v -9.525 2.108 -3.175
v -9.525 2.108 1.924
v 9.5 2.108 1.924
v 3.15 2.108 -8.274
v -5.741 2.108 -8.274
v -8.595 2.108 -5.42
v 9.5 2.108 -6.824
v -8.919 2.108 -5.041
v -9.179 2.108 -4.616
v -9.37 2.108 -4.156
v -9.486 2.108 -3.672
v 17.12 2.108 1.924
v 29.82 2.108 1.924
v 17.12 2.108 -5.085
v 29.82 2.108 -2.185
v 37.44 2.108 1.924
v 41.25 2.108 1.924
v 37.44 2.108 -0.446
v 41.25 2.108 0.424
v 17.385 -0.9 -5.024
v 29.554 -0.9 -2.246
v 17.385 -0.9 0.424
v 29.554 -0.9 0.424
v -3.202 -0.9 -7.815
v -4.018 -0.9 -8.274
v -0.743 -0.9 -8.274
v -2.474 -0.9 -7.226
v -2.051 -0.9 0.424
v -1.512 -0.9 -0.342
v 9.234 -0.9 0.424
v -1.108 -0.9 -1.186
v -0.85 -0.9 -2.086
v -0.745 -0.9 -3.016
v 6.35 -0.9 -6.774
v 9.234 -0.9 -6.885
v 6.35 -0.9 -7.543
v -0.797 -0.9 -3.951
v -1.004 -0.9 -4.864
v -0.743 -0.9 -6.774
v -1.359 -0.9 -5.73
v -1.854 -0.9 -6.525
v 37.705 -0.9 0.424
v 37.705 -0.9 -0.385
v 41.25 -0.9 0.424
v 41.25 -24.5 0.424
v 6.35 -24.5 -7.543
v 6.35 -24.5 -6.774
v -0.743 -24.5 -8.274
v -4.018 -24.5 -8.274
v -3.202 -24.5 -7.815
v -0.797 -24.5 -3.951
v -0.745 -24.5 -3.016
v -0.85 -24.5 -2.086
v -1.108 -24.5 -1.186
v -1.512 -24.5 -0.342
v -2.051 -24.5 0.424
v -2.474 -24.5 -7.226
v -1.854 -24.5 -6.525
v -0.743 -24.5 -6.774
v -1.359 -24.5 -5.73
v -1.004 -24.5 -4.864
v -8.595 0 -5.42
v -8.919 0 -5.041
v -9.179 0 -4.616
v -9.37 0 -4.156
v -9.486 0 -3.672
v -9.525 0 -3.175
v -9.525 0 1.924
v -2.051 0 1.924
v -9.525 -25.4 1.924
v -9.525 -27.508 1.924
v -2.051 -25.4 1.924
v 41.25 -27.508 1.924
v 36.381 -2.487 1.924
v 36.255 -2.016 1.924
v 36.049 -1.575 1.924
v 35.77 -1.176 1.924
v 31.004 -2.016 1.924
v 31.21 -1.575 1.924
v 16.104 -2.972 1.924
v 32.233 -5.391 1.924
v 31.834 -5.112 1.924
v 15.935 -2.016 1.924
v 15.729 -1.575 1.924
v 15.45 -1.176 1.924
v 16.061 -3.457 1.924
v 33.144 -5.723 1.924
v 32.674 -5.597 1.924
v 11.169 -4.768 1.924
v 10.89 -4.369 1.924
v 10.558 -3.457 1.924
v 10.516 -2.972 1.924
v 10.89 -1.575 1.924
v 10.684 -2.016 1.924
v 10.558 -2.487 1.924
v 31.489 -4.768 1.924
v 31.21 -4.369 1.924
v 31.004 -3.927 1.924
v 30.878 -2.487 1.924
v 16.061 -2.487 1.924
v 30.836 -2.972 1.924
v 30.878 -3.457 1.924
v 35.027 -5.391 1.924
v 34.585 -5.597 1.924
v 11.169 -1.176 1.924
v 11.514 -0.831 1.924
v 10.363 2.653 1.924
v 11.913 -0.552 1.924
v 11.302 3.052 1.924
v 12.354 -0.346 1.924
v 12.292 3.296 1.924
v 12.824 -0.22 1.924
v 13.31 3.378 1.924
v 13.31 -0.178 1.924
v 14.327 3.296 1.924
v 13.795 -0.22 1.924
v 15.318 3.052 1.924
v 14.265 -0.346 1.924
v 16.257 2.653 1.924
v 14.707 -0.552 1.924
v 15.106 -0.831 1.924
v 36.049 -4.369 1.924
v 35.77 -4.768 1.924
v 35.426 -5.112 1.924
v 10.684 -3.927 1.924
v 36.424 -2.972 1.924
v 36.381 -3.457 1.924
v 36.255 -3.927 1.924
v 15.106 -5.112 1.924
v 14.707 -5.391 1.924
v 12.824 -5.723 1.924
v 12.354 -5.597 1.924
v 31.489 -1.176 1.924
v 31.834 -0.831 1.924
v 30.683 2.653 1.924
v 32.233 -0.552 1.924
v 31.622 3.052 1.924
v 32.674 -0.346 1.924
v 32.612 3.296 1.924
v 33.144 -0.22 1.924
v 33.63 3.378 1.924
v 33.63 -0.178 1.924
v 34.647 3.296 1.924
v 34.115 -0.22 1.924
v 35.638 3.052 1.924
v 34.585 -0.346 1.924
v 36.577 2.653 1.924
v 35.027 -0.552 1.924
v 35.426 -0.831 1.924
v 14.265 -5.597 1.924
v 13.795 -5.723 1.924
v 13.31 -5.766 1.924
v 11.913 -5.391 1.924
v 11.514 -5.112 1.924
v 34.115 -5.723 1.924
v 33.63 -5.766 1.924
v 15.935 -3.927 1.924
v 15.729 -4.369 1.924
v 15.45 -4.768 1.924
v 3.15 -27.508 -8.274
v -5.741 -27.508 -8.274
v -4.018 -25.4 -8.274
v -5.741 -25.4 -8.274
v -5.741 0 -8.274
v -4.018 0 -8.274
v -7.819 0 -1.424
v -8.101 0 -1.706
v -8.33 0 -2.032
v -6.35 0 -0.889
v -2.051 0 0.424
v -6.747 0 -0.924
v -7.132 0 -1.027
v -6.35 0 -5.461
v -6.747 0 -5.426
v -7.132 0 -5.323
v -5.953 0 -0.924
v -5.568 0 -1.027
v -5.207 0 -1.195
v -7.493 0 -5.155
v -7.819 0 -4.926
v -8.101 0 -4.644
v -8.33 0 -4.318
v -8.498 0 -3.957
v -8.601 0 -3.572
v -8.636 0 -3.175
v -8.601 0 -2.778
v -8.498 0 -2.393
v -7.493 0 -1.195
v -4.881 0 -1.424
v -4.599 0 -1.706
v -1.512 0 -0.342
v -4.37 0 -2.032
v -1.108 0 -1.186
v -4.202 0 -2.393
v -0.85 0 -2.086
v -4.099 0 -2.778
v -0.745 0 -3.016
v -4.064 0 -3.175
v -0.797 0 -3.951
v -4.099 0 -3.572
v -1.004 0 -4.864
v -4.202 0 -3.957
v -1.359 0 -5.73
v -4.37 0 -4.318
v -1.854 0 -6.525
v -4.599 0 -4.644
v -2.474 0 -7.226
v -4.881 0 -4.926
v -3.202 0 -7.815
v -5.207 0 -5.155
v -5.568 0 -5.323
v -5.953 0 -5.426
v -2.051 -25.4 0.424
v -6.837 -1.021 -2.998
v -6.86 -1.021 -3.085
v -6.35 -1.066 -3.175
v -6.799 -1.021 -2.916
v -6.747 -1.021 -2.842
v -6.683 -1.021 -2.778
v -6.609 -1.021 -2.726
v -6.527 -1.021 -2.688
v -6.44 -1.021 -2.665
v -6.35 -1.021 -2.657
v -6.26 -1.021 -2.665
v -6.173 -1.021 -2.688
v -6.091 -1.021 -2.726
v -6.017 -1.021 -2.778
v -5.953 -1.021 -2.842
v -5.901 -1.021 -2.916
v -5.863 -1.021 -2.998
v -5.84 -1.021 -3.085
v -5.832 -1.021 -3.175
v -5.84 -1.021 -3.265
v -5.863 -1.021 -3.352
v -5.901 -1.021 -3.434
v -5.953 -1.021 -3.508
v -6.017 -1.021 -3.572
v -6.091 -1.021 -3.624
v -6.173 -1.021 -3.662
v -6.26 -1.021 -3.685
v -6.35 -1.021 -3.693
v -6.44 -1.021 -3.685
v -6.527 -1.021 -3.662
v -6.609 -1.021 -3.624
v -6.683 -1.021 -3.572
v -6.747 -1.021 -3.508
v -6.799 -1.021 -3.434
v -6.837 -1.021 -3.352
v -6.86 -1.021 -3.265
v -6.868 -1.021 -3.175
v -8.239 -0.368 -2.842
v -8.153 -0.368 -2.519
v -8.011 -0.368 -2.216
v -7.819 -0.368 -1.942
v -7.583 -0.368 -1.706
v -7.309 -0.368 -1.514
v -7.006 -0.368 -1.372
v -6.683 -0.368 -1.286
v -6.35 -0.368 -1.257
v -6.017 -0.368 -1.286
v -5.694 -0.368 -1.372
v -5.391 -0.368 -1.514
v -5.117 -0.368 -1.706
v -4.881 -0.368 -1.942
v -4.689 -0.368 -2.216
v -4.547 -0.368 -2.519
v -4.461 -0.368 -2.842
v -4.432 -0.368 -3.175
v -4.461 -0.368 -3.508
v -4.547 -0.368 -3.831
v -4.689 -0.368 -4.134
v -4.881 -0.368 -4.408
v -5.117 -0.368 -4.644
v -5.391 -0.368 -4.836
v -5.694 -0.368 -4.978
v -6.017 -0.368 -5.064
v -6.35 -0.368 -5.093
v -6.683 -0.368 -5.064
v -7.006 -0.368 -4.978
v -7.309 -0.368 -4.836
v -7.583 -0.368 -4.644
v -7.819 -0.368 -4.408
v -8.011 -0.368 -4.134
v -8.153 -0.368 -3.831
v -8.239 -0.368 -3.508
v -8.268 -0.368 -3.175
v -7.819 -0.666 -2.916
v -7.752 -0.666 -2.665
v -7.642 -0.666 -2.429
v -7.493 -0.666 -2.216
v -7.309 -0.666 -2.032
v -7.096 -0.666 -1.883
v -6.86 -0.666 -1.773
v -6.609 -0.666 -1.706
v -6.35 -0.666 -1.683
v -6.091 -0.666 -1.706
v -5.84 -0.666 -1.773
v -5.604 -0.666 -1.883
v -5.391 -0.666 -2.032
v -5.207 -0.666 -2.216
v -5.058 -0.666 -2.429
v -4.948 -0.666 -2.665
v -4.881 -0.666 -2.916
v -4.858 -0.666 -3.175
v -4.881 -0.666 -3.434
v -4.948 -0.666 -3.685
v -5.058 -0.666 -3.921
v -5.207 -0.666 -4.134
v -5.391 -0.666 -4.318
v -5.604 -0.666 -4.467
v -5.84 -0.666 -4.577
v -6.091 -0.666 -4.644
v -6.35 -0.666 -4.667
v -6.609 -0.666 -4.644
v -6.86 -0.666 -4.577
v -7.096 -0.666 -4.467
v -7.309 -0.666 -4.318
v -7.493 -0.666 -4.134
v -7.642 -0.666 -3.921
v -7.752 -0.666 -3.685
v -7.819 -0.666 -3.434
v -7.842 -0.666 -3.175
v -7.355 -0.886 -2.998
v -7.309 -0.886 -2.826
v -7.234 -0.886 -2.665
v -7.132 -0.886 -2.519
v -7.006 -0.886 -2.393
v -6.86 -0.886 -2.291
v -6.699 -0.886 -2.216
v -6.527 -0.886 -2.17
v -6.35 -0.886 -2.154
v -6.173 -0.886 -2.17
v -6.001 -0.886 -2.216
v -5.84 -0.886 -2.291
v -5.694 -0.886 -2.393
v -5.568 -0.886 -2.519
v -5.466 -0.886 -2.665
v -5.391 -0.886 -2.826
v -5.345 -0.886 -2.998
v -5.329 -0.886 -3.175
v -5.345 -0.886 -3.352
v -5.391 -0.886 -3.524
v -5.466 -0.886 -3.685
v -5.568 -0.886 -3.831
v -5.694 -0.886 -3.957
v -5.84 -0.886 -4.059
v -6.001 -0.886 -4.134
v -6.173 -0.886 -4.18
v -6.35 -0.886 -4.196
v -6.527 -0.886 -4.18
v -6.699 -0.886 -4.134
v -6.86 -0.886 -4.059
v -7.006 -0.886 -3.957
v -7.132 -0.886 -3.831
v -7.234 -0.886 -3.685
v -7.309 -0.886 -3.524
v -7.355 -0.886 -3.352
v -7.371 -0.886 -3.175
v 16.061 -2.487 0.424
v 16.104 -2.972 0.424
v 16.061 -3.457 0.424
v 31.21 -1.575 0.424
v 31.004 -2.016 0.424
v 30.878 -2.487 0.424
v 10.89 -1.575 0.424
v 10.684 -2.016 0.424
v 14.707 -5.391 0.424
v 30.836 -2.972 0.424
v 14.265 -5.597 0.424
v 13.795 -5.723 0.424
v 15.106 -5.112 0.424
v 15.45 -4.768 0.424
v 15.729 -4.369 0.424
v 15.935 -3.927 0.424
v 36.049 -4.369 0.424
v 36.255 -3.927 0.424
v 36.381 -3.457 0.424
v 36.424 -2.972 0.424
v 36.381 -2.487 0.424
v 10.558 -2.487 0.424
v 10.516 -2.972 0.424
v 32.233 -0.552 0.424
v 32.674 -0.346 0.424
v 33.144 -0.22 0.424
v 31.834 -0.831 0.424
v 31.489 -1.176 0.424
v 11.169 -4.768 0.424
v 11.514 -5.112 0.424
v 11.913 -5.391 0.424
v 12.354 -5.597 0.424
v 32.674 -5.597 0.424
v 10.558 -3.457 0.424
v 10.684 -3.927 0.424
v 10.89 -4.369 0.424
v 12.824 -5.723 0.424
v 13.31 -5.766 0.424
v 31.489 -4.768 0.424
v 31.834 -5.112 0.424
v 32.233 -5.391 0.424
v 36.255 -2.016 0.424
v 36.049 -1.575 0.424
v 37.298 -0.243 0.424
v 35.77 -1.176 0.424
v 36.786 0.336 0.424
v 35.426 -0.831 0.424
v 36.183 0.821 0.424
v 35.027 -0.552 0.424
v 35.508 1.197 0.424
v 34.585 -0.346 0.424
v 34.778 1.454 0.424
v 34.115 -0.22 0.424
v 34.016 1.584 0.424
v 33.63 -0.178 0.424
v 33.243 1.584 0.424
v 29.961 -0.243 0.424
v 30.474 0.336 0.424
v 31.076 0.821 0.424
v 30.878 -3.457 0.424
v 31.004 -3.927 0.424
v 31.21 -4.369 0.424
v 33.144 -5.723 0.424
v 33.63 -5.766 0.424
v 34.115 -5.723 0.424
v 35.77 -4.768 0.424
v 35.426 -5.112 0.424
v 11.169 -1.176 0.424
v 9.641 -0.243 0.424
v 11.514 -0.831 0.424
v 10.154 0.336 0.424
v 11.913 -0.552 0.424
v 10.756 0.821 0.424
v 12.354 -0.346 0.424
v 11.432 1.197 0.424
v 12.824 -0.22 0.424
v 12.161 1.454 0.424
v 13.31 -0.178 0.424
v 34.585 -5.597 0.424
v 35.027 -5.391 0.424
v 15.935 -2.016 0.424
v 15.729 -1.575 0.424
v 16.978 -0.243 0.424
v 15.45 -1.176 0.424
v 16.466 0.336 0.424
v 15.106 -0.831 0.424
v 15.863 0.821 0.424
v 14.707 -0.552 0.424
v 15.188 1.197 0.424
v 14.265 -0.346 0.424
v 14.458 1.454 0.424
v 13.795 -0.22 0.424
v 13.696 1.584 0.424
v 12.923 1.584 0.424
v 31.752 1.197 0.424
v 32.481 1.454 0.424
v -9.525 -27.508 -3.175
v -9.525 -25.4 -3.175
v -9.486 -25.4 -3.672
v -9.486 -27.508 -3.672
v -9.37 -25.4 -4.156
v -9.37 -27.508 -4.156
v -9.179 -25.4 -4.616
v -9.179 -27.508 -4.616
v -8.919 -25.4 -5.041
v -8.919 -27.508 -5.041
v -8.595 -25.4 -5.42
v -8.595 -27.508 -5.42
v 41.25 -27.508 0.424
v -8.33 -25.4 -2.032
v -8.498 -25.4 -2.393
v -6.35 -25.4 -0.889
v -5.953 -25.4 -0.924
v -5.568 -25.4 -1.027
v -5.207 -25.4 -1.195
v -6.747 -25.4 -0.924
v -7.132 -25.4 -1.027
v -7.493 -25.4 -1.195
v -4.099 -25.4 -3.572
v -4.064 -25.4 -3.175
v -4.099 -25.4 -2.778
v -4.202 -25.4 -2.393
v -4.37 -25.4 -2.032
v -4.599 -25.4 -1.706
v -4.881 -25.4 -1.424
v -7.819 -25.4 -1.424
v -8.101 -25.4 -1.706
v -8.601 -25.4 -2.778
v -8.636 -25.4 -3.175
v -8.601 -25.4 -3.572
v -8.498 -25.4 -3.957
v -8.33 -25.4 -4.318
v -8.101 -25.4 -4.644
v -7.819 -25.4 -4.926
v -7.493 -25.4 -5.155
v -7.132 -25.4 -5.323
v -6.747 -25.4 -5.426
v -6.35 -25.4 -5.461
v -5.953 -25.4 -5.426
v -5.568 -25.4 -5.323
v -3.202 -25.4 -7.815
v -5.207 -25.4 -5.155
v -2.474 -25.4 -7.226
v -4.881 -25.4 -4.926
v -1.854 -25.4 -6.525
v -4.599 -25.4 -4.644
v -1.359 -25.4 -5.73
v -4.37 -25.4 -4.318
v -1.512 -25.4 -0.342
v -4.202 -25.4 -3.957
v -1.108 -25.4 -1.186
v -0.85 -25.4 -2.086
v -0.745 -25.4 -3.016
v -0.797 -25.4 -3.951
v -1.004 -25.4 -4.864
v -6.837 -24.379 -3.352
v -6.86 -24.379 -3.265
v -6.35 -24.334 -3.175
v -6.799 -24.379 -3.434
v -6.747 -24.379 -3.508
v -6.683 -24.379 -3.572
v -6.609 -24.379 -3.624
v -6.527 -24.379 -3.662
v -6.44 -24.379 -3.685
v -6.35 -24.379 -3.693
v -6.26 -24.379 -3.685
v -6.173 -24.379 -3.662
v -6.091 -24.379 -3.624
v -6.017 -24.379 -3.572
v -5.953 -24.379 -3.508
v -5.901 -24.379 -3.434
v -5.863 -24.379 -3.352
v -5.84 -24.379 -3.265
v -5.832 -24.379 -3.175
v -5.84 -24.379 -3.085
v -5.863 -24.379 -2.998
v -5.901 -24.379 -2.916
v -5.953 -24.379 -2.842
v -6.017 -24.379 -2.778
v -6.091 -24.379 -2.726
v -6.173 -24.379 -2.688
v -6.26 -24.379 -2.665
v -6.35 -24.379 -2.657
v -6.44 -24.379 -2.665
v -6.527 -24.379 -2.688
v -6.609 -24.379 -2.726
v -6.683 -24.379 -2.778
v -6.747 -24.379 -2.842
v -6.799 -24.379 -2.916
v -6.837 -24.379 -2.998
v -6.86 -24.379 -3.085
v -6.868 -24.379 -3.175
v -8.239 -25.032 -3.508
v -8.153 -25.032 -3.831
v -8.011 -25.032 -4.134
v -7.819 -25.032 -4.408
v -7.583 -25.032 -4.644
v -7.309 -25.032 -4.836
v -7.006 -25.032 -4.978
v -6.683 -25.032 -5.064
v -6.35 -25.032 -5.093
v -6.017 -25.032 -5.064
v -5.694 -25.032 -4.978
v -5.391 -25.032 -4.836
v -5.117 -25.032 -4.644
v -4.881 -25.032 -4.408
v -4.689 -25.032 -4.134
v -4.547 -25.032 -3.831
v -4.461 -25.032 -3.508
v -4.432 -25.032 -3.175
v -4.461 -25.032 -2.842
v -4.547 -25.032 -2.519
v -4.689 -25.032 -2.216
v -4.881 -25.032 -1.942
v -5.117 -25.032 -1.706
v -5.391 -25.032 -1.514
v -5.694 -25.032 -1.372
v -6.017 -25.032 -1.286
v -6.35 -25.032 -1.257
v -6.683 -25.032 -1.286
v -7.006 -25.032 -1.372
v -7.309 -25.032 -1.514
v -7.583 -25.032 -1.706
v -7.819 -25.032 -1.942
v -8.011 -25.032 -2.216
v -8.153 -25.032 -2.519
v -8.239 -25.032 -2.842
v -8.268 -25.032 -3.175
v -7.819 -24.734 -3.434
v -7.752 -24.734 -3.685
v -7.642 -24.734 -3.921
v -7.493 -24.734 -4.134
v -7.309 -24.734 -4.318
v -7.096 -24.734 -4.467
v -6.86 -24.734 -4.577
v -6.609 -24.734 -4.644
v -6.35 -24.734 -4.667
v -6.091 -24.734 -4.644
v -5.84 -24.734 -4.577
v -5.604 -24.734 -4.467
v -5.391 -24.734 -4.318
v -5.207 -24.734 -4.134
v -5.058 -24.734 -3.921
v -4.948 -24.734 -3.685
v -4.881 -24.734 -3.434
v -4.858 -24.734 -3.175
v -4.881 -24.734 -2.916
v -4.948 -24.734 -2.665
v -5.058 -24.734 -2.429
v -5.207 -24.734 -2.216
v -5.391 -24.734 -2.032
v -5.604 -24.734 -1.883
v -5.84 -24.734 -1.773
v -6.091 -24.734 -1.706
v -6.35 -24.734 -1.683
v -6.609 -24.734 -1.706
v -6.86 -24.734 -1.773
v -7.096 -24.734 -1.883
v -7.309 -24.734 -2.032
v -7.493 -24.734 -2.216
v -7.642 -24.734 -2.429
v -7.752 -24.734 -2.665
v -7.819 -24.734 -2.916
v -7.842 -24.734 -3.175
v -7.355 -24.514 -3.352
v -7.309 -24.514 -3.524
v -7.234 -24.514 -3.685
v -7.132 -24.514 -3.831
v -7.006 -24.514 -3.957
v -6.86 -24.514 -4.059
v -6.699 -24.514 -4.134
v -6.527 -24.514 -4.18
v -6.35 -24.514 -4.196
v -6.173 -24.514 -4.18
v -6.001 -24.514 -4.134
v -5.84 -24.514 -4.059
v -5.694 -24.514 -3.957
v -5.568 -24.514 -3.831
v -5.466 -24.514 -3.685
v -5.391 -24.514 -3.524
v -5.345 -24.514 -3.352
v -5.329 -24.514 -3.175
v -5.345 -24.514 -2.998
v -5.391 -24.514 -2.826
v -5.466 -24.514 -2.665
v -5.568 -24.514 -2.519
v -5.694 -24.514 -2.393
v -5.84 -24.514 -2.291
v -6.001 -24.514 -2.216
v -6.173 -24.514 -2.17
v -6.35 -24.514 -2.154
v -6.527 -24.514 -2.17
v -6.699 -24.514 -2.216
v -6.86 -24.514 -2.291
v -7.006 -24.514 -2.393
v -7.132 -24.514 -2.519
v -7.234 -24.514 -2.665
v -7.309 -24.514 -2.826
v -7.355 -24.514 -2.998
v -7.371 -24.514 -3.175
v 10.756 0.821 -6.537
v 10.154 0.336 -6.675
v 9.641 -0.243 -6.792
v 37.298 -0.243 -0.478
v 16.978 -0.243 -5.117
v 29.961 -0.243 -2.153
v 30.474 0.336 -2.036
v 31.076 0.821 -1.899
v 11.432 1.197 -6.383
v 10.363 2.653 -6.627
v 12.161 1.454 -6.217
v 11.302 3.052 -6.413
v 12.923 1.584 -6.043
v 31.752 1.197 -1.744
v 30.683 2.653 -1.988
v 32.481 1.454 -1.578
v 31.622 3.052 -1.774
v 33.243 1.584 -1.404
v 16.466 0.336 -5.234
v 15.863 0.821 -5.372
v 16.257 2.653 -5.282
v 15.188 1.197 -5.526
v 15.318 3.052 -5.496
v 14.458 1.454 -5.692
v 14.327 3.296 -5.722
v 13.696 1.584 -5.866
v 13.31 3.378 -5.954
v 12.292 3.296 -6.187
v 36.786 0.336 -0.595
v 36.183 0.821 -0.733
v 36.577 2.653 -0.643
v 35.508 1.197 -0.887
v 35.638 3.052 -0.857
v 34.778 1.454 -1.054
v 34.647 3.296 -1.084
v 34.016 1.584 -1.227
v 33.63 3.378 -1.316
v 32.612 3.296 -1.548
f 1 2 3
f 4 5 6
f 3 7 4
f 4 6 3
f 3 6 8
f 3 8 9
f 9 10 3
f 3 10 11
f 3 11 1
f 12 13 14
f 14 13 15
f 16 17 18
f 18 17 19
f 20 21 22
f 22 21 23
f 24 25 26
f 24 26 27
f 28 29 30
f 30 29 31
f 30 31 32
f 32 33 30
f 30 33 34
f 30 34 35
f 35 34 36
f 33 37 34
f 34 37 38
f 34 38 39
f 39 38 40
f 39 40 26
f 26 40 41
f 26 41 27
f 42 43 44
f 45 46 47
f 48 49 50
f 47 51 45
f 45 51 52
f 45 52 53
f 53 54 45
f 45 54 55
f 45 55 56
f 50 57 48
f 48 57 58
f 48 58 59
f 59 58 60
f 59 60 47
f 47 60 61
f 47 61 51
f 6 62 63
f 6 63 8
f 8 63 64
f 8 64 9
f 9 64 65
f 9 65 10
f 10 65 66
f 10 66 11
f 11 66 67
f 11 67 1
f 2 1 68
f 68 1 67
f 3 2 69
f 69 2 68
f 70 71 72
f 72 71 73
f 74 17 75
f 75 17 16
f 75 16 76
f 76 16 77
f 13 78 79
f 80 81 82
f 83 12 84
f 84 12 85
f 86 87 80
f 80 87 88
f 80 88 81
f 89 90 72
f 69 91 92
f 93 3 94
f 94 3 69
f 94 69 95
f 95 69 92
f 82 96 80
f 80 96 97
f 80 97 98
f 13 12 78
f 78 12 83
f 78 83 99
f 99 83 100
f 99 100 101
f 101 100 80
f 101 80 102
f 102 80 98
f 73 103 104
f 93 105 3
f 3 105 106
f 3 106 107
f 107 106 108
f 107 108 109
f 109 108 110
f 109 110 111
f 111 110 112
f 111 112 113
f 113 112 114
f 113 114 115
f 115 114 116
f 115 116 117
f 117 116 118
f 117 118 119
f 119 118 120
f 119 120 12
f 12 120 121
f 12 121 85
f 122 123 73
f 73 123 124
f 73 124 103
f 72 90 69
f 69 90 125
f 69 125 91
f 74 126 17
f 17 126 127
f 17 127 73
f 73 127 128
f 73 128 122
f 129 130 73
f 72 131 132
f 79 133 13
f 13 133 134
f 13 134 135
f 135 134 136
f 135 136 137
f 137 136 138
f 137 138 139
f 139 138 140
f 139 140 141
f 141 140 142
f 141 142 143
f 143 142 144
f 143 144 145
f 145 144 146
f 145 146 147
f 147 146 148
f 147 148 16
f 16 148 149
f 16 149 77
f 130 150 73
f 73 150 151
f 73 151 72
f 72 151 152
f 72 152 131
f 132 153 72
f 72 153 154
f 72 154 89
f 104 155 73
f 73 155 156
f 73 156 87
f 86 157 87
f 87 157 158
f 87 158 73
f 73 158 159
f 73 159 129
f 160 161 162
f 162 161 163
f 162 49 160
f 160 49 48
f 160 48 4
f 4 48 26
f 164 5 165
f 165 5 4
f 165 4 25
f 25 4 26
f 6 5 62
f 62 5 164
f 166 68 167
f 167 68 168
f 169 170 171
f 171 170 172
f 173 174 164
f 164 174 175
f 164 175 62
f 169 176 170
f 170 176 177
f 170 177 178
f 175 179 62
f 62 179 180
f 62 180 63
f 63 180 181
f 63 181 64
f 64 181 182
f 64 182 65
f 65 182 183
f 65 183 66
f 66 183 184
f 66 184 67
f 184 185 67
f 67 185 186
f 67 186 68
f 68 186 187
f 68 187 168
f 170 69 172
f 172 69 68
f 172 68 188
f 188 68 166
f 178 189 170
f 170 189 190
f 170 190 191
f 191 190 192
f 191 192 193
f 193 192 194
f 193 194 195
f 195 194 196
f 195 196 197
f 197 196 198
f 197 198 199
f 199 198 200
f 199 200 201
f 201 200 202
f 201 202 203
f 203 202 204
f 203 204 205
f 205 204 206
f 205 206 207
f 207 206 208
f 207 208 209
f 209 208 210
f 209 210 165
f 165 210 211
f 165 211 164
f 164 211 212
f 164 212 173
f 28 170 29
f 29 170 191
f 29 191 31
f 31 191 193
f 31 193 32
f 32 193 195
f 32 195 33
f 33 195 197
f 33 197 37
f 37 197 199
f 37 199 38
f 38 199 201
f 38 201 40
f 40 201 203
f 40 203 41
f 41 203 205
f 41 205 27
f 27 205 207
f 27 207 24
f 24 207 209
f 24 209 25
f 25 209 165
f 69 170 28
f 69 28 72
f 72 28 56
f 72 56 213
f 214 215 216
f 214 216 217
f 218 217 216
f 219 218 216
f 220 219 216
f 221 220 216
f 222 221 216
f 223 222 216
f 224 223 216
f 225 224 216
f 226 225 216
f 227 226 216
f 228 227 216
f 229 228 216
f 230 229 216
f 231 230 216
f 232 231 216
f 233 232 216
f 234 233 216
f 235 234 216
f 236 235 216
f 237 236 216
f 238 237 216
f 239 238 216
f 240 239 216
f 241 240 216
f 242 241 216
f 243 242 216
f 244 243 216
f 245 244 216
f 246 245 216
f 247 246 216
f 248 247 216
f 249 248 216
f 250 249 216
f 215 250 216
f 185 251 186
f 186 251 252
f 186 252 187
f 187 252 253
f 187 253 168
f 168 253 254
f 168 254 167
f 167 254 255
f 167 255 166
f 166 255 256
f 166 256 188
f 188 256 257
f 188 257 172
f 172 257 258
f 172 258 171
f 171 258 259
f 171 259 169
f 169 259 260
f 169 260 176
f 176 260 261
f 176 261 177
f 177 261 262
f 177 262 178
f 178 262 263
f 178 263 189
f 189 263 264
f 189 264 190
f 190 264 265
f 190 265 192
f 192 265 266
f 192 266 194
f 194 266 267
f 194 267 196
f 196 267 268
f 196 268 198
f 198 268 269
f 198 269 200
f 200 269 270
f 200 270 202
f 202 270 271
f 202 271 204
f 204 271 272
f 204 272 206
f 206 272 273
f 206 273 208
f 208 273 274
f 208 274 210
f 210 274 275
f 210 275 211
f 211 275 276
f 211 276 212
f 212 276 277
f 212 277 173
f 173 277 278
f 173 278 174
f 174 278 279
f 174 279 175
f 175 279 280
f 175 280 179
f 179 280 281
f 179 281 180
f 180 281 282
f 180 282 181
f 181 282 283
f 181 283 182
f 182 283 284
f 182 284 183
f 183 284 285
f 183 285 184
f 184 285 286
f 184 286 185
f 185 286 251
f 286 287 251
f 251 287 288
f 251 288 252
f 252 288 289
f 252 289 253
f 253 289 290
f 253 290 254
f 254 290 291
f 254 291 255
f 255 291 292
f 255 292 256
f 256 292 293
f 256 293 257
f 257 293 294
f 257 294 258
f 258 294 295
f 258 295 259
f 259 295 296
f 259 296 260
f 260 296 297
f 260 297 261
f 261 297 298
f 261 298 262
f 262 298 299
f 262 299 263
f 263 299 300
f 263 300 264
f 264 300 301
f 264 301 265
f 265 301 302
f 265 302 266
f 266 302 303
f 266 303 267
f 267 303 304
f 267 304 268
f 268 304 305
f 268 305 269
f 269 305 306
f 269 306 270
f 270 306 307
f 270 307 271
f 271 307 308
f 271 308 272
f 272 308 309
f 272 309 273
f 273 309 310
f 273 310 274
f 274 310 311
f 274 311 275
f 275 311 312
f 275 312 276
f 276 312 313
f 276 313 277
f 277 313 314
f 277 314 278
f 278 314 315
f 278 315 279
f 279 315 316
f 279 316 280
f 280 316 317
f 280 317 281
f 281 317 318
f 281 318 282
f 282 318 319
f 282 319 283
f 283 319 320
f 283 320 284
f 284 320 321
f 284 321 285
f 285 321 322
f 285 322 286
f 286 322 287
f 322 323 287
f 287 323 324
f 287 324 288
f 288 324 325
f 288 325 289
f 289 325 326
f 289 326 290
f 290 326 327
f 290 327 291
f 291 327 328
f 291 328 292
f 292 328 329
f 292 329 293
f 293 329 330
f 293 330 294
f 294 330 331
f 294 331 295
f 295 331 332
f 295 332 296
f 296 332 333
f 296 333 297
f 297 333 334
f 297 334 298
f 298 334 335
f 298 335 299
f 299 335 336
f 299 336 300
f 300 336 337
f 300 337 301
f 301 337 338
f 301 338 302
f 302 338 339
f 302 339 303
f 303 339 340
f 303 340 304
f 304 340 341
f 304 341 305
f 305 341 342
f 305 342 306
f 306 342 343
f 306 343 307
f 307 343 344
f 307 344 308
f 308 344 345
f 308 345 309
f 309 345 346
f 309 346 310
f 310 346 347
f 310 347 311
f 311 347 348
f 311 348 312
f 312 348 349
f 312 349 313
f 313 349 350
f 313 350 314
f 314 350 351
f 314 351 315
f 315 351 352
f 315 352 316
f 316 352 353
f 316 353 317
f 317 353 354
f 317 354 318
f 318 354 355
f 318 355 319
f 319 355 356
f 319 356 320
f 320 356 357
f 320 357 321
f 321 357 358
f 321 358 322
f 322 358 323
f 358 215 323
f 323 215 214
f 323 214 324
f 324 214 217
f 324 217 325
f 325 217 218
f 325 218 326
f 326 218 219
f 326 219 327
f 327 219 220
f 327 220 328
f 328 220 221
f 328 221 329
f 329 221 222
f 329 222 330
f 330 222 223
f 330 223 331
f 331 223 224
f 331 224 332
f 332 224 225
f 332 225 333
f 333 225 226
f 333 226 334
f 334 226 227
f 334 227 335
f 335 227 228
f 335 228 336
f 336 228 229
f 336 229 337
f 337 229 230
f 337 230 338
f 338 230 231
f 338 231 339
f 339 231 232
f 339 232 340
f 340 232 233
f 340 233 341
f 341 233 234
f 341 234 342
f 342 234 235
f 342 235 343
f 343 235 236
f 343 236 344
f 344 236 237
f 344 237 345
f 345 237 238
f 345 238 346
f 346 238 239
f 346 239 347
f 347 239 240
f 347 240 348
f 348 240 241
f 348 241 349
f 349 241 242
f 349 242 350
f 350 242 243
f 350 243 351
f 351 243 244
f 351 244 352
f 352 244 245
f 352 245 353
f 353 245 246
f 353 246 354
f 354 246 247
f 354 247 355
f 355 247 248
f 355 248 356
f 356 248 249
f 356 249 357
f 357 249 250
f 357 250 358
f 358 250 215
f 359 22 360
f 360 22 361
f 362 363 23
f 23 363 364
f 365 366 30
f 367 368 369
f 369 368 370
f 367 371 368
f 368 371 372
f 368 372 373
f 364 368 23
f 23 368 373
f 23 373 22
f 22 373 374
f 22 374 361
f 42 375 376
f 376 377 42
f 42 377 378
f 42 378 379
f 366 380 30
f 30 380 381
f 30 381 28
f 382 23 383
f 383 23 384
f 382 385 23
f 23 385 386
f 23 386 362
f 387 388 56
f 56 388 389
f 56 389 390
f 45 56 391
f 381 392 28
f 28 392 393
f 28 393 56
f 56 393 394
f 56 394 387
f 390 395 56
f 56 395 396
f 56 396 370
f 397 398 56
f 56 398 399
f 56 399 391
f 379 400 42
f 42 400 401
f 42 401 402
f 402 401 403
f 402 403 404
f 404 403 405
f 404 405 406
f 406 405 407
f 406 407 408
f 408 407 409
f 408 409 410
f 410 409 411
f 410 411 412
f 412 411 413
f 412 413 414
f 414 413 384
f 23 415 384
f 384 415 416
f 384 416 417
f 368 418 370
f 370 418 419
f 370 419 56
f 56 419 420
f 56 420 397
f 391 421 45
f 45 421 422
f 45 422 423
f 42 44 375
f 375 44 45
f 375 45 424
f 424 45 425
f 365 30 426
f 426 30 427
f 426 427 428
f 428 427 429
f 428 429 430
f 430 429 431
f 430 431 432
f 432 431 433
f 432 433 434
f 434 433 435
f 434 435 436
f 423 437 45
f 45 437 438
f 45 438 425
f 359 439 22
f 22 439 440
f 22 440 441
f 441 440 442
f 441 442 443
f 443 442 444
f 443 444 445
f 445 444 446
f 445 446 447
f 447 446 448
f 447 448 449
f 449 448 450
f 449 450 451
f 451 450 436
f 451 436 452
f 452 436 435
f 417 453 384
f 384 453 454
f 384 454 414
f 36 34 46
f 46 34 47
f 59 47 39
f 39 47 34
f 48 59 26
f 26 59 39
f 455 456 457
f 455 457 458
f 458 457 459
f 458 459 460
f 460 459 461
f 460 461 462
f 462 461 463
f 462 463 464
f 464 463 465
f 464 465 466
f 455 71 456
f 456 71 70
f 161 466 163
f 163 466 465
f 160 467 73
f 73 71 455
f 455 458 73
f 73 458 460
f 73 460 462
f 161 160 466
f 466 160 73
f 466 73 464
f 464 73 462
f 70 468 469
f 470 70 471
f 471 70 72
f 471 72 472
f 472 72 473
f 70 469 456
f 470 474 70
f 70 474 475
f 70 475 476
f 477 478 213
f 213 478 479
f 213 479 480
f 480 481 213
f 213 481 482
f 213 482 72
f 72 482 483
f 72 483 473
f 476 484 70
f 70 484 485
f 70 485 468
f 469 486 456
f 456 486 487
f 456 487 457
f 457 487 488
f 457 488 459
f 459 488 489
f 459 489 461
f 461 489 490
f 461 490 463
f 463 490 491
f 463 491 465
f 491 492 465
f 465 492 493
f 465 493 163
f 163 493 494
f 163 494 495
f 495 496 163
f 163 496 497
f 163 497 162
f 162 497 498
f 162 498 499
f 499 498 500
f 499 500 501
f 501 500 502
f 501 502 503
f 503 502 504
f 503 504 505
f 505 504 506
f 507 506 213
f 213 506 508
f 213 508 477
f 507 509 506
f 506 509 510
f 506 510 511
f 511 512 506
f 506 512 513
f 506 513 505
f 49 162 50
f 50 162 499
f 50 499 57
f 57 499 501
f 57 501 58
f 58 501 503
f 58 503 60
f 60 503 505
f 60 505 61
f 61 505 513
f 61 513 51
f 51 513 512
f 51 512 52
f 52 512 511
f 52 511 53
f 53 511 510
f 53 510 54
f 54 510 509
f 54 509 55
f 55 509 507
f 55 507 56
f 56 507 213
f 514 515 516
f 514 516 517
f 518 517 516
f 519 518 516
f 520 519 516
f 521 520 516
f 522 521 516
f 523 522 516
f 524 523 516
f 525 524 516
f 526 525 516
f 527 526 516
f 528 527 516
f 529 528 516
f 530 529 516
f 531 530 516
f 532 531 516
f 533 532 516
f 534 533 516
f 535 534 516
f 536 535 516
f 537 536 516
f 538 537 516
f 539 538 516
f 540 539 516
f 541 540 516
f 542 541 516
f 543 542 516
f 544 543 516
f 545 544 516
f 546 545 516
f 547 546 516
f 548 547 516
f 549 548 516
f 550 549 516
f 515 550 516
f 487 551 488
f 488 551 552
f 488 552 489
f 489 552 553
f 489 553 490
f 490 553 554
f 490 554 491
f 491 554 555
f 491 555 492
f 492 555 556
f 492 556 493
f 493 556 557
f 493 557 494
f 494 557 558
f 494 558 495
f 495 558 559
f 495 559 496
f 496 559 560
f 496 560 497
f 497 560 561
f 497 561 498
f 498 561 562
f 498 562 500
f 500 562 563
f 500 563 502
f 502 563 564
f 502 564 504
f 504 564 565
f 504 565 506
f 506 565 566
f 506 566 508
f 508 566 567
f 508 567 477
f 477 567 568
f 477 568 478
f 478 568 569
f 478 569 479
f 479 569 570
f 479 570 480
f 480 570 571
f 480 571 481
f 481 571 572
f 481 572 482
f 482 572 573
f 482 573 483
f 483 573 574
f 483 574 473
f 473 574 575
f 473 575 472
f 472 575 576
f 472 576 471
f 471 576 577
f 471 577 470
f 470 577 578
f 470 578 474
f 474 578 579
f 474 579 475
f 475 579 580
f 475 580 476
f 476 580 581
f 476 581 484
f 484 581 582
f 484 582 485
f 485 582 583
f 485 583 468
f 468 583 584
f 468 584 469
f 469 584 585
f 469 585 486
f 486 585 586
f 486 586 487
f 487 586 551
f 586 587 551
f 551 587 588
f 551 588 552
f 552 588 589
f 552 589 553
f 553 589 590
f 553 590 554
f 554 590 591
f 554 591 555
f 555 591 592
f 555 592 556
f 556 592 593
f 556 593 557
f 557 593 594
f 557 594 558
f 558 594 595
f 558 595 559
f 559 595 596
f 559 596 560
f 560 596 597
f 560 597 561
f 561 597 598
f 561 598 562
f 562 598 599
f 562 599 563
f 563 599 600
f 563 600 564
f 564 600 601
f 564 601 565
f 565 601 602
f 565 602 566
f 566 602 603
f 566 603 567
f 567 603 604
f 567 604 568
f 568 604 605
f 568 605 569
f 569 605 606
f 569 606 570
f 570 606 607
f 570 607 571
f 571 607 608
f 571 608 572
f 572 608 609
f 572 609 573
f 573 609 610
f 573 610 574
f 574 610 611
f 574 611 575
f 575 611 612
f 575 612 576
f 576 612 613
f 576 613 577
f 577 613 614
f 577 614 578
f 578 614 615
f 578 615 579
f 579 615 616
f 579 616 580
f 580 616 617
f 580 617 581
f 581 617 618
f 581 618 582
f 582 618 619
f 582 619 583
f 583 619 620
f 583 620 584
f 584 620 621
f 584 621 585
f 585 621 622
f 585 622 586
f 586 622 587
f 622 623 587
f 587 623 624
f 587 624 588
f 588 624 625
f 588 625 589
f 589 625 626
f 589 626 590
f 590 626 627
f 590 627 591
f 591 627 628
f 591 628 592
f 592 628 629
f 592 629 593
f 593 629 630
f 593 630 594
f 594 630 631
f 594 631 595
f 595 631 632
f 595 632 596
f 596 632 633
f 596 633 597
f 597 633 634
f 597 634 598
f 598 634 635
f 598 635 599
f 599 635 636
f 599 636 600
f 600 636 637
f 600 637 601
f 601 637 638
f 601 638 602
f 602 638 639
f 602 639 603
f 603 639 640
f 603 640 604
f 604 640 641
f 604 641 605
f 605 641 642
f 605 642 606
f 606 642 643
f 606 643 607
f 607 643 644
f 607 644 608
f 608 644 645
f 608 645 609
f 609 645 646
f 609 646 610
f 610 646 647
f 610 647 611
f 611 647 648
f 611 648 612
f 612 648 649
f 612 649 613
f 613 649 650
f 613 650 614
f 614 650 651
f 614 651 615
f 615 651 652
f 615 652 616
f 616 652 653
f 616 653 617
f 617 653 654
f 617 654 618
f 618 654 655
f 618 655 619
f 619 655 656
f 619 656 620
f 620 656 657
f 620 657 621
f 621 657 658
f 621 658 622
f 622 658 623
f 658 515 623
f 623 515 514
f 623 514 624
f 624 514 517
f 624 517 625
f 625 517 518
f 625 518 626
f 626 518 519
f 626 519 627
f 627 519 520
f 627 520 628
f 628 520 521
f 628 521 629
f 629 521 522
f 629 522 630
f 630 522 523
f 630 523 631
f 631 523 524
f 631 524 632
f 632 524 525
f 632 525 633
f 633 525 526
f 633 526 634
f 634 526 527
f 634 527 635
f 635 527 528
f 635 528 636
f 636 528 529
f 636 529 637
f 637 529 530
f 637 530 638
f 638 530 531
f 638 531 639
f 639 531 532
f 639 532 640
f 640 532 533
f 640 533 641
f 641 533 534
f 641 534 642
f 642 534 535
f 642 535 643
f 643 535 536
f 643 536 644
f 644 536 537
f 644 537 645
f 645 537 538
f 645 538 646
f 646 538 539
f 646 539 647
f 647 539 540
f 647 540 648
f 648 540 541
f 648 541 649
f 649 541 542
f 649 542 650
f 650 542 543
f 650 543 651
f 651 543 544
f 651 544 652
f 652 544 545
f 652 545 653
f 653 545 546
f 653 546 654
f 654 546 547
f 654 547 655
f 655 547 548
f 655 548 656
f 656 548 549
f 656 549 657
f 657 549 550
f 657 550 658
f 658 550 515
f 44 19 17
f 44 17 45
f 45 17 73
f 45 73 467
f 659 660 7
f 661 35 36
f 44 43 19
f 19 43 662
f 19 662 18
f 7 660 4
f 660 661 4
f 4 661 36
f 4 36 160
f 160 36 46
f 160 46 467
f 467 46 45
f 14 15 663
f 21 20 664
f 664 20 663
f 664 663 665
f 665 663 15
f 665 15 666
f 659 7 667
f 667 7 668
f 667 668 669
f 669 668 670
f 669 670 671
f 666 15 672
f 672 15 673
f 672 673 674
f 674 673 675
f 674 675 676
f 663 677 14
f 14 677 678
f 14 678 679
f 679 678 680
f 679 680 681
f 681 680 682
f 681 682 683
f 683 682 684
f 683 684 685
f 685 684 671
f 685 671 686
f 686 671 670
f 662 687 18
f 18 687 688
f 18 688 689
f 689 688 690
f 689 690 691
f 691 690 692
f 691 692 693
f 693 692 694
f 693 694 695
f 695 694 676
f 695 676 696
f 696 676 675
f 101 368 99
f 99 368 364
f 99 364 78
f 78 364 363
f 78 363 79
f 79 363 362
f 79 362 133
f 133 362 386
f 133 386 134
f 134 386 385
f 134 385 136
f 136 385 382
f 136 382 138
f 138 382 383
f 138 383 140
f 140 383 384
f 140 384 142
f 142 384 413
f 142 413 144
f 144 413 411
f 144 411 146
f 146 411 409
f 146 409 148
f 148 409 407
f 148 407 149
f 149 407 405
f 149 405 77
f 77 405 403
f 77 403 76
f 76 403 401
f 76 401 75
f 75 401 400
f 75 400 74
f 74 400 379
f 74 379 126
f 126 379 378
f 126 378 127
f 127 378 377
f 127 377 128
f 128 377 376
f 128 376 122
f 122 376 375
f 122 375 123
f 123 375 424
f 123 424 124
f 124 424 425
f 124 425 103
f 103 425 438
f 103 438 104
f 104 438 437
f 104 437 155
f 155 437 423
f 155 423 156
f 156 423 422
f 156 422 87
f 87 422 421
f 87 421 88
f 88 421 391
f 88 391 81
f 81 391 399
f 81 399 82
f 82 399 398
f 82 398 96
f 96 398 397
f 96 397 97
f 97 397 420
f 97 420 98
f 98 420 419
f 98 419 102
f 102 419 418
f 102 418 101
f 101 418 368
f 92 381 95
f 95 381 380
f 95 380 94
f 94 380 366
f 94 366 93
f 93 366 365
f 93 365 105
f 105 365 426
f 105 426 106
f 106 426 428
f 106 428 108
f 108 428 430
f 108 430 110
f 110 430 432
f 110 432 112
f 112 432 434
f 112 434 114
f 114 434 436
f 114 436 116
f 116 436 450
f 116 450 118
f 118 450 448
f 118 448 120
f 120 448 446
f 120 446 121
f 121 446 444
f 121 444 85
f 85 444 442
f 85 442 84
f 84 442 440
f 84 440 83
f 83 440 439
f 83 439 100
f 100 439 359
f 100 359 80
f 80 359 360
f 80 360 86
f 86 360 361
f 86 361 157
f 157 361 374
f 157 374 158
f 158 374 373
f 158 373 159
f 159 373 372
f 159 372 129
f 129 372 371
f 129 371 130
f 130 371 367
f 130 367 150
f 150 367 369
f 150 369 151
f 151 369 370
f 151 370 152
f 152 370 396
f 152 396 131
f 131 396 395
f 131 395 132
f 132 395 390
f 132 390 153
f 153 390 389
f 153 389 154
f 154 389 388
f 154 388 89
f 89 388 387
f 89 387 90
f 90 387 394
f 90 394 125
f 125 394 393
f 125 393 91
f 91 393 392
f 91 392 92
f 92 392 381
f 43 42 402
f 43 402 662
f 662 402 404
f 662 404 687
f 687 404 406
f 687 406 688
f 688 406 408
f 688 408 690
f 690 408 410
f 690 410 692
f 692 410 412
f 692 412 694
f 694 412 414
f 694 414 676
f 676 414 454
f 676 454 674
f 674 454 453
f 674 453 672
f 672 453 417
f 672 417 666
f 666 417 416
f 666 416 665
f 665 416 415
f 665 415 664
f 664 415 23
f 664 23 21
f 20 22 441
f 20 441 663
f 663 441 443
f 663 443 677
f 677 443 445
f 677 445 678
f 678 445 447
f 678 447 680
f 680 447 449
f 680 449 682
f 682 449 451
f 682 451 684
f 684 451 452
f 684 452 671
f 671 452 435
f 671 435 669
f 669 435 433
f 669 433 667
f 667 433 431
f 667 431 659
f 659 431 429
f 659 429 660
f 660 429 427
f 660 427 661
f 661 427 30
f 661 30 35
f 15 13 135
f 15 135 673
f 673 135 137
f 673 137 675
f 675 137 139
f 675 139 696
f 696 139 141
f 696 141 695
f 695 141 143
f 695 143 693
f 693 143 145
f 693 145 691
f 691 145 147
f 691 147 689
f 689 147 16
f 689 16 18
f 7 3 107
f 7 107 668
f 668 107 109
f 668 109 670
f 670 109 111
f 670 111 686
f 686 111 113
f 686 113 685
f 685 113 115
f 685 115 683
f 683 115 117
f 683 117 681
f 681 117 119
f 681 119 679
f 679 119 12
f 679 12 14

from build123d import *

# Parameters (mm, degrees)
BOSS_EXTRUDE2_DEPTH             = 2.1082
BOSS_EXTRUDE3_DEPTH             = 0.9
SKETCH13_W                      = 5.200208993
SKETCH13_H                      = 1.5
BOSS_EXTRUDE4_DEPTH             = 12.7
SKETCH16_W                      = 7.09322036
SKETCH16_H                      = 1.5
BOSS_EXTRUDE5_DEPTH             = 11.8
SKETCH17_W                      = 1.5
SKETCH17_H                      = 23.6
BOSS_EXTRUDE6_DEPTH             = 38.1
BOSS_EXTRUDE7_REACH             = 53.45
BOSS_EXTRUDE8_DEPTH             = 3.0082
CUT_EXTRUDE1_DEPTH              = 52.450131959
CUT_EXTRUDE2_REACH              = 52.338
SKETCH21_R                      = 2.794
SKETCH22_R                      = 4.572
CUT_EXTRUDE3_DEPTH              = 51.337641034
BOSS_EXTRUDE9_REACH             = 52.338
BOSS_EXTRUDE9_DIRECTION_2_DEPTH = 1.5


with BuildPart() as part:
    # Sketch6 → Boss-Extrude2 (new body)
    with BuildSketch(Plane(origin=(0, 0, 0), x_dir=(1, 0, 0), z_dir=(0, 1, 0))):
        with BuildLine():
            Line((3.1496, 3.175), (3.1496, 8.27377964))
            Line((3.1496, 8.27377964), (-5.741348421, 8.27377964))
            Line((-5.741348421, 8.27377964), (-8.59506403, 5.42006403))
            ThreePointArc((-8.59506403, 5.42006403), (-9.283317516, 4.390019898), (-9.525, 3.175))
            Line((-9.525, 3.175), (-9.525, -1.92377964))
            Line((-9.525, -1.92377964), (-6.989909723, -1.92377964))
            Line((-6.989909723, -1.92377964), (3.1496, -1.92377964))
            Line((3.1496, -1.92377964), (3.1496, 3.175))
        make_face()
    extrude(amount=BOSS_EXTRUDE2_DEPTH)

    # Sketch7 → Boss-Extrude3 (add)
    with BuildSketch(Plane.XZ):
        with BuildLine():
            Line((-2.050608993, 1.92377964), (-2.050608993, 0.42377964))
            ThreePointArc((-2.050608993, 0.42377964), (-0.881374643, -4.411978027), (-4.017957094, -8.27377964))
            Line((-4.017957094, -8.27377964), (6.35, -8.27377964))
            ThreePointArc((6.35, -8.27377964), (11.44877964, -3.175), (6.35, 1.92377964))
            Line((6.35, 1.92377964), (-2.050608993, 1.92377964))
        make_face()
    extrude(amount=BOSS_EXTRUDE3_DEPTH)

    # Sketch10 → Revolve2 (revolve)
    with BuildSketch(Plane.XY.offset(-3.175), mode=Mode.PRIVATE) as revolve2_sk:
        with BuildLine():
            Line((-6.35, 0), (-6.35, -1.065979307))
            ThreePointArc((-6.35, -1.065979307), (-5.088839039, -0.786386653), (-4.064, 0))
            Line((-4.064, 0), (-6.35, 0))
        make_face()
    revolve(revolve2_sk.sketch.rotate(Axis((-6.35, 0, -3.175), (0, -1, 0)), 180), axis=Axis((-6.35, 0, -3.175), (0, -1, 0)))

    # Sketch13 → Boss-Extrude4 (add)
    with BuildSketch(Plane.XZ):
        with Locations((0.549495504, 1.17377964)):
            Rectangle(SKETCH13_W, SKETCH13_H)
    extrude(amount=BOSS_EXTRUDE4_DEPTH)

    # Sketch16 → Boss-Extrude5 (add)
    with BuildSketch(Plane.XZ.offset(0.9)):
        with Locations((2.80338982, -7.52377964)):
            Rectangle(SKETCH16_W, SKETCH16_H)
    extrude(amount=BOSS_EXTRUDE5_DEPTH)

    # Mirror1: part across plane


with BuildPart() as part_1:
    add(part.part)
    add(part.part.mirror(Plane(origin=(3.1496, -12.7, 1.92377964), x_dir=(0, 0, 1), z_dir=(0, 1, 0))))

    # Sketch17 → Boss-Extrude6 (add)
    with BuildSketch(Plane(origin=(3.1496, 0, 0), x_dir=(0, 0, -1), z_dir=(1, 0, 0))):
        with Locations((-1.17377964, -12.7)):
            Rectangle(SKETCH17_W, SKETCH17_H)
    extrude(amount=BOSS_EXTRUDE6_DEPTH)

    # Boss-Extrude7: up to this face of the body (flat: up to its plane)
    boss_extrude7_end = Plane(part_1.part.faces().sort_by_distance((25.033512305, -24.5, 1.184664169))[0])
    # Sketch18 → Boss-Extrude7 (add, up to the picked face)
    with BuildSketch(Plane.XZ.offset(27.5082), mode=Mode.PRIVATE) as boss_extrude7_sk1:
        Polygon((3.1496, -8.27377964), (41.2496, 0.42377964), (41.2496, 1.92377964), (3.1496, 1.92377964), align=None)
    boss_extrude7_tool1 = split(extrude(boss_extrude7_sk1.sketch, amount=-BOSS_EXTRUDE7_REACH, mode=Mode.PRIVATE), bisect_by=boss_extrude7_end, keep=Keep.BOTH, mode=Mode.PRIVATE)
    add(boss_extrude7_tool1.solids().sort_by(Axis((17.478145, -27.5082, -1.539523), (0, 1, 0)))[0])

    # Sketch19 → Boss-Extrude8 (add)
    with BuildSketch(Plane(origin=(0, 2.1082, 0), x_dir=(1, 0, 0), z_dir=(0, 1, 0))):
        Polygon((3.1496, 8.27377964), (41.2496, -0.42377964), (41.2496, -1.92377964), (3.1496, -1.92377964), align=None)
    extrude(amount=-BOSS_EXTRUDE8_DEPTH)

    # Sketch20 → Cut-Extrude1 (cut, through all)
    with BuildSketch(Plane.XZ.offset(27.5082)):
        with BuildLine():
            Line((10.03132609, -6.702802721), (3.1496, -8.27377964))
            Line((3.1496, -8.27377964), (6.35, -8.27377964))
            ThreePointArc((6.35, -8.27377964), (8.351257746, -7.864618455), (10.03132609, -6.702802721))
        make_face()
    extrude(amount=-CUT_EXTRUDE1_DEPTH, mode=Mode.SUBTRACT)

    # Sketch21 → Cut-Extrude2 (cut, up to next)
    with BuildSketch(Plane(origin=(0, 0, 0.42377964), x_dir=(-1, 0, 0), z_dir=(0, 0, -1)), mode=Mode.PRIVATE) as cut_extrude2_sk1:
        with Locations((-33.6296, -2.9718)):
            Circle(SKETCH21_R)
    cut_extrude2_tool1 = extrude(cut_extrude2_sk1.sketch, amount=-CUT_EXTRUDE2_REACH, mode=Mode.PRIVATE) & part_1.part
    # Sketch21 → Cut-Extrude2 (cut, up to next)
    with BuildSketch(Plane(origin=(0, 0, 0.42377964), x_dir=(-1, 0, 0), z_dir=(0, 0, -1)), mode=Mode.PRIVATE) as cut_extrude2_sk2:
        with Locations((-13.3096, -2.9718)):
            Circle(SKETCH21_R)
    cut_extrude2_tool2 = extrude(cut_extrude2_sk2.sketch, amount=-CUT_EXTRUDE2_REACH, mode=Mode.PRIVATE) & part_1.part
    add(cut_extrude2_tool1.solids().sort_by_distance((33.6296, -2.9718, 0.42378))[0], mode=Mode.SUBTRACT)
    add(cut_extrude2_tool2.solids().sort_by_distance((13.3096, -2.9718, 0.42378))[0], mode=Mode.SUBTRACT)

    # Sketch22 → Cut-Extrude3 (cut, through all)
    with BuildSketch(Plane(origin=(0, 0, 0.42377964), x_dir=(-1, 0, 0), z_dir=(0, 0, -1))):
        with Locations((-33.6296, -2.9718)):
            Circle(SKETCH22_R)
        with Locations((-13.3096, -2.9718)):
            Circle(SKETCH22_R)
    extrude(amount=CUT_EXTRUDE3_DEPTH, mode=Mode.SUBTRACT)

    # Boss-Extrude9: up to this plane
    boss_extrude9_end = Plane(origin=(3.1496, 14.941098048, -8.27377964), z_dir=(0.2225570001625305, 0, -0.9749196796037383))
    # Sketch23 → Boss-Extrude9 (add, up to the surface)
    with BuildSketch(Plane(origin=(0, 0, 0.42377964), x_dir=(-1, 0, 0), z_dir=(0, 0, -1)), mode=Mode.PRIVATE) as boss_extrude9_sk1:
        with BuildLine():
            ThreePointArc((-29.8196, 2.1082), (-33.6296, 3.3782), (-37.4396, 2.1082))
            Line((-37.4396, 2.1082), (-29.8196, 2.1082))
        make_face()
    boss_extrude9_tool1 = split(extrude(boss_extrude9_sk1.sketch, amount=BOSS_EXTRUDE9_REACH, mode=Mode.PRIVATE), bisect_by=boss_extrude9_end, keep=Keep.BOTH, mode=Mode.PRIVATE)
    add(boss_extrude9_tool1.solids().sort_by_distance((33.6296, 2.620823, 0.42378))[0])
    # Sketch23 → Boss-Extrude9 (add, up to the surface)
    with BuildSketch(Plane(origin=(0, 0, 0.42377964), x_dir=(-1, 0, 0), z_dir=(0, 0, -1)), mode=Mode.PRIVATE) as boss_extrude9_sk2:
        with BuildLine():
            ThreePointArc((-9.4996, 2.1082), (-13.3096, 3.3782), (-17.1196, 2.1082))
            Line((-17.1196, 2.1082), (-9.4996, 2.1082))
        make_face()
    boss_extrude9_tool2 = split(extrude(boss_extrude9_sk2.sketch, amount=BOSS_EXTRUDE9_REACH, mode=Mode.PRIVATE), bisect_by=boss_extrude9_end, keep=Keep.BOTH, mode=Mode.PRIVATE)
    add(boss_extrude9_tool2.solids().sort_by_distance((13.3096, 2.620823, 0.42378))[0])

    # Sketch23 → Boss-Extrude9 direction 2 (add)
    with BuildSketch(Plane(origin=(0, 0, 0.42377964), x_dir=(-1, 0, 0), z_dir=(0, 0, -1))):
        with BuildLine():
            ThreePointArc((-29.8196, 2.1082), (-33.6296, 3.3782), (-37.4396, 2.1082))
            Line((-37.4396, 2.1082), (-29.8196, 2.1082))
        make_face()
        with BuildLine():
            ThreePointArc((-9.4996, 2.1082), (-13.3096, 3.3782), (-17.1196, 2.1082))
            Line((-17.1196, 2.1082), (-9.4996, 2.1082))
        make_face()
    extrude(amount=-BOSS_EXTRUDE9_DIRECTION_2_DEPTH)


solid = part_1.part
